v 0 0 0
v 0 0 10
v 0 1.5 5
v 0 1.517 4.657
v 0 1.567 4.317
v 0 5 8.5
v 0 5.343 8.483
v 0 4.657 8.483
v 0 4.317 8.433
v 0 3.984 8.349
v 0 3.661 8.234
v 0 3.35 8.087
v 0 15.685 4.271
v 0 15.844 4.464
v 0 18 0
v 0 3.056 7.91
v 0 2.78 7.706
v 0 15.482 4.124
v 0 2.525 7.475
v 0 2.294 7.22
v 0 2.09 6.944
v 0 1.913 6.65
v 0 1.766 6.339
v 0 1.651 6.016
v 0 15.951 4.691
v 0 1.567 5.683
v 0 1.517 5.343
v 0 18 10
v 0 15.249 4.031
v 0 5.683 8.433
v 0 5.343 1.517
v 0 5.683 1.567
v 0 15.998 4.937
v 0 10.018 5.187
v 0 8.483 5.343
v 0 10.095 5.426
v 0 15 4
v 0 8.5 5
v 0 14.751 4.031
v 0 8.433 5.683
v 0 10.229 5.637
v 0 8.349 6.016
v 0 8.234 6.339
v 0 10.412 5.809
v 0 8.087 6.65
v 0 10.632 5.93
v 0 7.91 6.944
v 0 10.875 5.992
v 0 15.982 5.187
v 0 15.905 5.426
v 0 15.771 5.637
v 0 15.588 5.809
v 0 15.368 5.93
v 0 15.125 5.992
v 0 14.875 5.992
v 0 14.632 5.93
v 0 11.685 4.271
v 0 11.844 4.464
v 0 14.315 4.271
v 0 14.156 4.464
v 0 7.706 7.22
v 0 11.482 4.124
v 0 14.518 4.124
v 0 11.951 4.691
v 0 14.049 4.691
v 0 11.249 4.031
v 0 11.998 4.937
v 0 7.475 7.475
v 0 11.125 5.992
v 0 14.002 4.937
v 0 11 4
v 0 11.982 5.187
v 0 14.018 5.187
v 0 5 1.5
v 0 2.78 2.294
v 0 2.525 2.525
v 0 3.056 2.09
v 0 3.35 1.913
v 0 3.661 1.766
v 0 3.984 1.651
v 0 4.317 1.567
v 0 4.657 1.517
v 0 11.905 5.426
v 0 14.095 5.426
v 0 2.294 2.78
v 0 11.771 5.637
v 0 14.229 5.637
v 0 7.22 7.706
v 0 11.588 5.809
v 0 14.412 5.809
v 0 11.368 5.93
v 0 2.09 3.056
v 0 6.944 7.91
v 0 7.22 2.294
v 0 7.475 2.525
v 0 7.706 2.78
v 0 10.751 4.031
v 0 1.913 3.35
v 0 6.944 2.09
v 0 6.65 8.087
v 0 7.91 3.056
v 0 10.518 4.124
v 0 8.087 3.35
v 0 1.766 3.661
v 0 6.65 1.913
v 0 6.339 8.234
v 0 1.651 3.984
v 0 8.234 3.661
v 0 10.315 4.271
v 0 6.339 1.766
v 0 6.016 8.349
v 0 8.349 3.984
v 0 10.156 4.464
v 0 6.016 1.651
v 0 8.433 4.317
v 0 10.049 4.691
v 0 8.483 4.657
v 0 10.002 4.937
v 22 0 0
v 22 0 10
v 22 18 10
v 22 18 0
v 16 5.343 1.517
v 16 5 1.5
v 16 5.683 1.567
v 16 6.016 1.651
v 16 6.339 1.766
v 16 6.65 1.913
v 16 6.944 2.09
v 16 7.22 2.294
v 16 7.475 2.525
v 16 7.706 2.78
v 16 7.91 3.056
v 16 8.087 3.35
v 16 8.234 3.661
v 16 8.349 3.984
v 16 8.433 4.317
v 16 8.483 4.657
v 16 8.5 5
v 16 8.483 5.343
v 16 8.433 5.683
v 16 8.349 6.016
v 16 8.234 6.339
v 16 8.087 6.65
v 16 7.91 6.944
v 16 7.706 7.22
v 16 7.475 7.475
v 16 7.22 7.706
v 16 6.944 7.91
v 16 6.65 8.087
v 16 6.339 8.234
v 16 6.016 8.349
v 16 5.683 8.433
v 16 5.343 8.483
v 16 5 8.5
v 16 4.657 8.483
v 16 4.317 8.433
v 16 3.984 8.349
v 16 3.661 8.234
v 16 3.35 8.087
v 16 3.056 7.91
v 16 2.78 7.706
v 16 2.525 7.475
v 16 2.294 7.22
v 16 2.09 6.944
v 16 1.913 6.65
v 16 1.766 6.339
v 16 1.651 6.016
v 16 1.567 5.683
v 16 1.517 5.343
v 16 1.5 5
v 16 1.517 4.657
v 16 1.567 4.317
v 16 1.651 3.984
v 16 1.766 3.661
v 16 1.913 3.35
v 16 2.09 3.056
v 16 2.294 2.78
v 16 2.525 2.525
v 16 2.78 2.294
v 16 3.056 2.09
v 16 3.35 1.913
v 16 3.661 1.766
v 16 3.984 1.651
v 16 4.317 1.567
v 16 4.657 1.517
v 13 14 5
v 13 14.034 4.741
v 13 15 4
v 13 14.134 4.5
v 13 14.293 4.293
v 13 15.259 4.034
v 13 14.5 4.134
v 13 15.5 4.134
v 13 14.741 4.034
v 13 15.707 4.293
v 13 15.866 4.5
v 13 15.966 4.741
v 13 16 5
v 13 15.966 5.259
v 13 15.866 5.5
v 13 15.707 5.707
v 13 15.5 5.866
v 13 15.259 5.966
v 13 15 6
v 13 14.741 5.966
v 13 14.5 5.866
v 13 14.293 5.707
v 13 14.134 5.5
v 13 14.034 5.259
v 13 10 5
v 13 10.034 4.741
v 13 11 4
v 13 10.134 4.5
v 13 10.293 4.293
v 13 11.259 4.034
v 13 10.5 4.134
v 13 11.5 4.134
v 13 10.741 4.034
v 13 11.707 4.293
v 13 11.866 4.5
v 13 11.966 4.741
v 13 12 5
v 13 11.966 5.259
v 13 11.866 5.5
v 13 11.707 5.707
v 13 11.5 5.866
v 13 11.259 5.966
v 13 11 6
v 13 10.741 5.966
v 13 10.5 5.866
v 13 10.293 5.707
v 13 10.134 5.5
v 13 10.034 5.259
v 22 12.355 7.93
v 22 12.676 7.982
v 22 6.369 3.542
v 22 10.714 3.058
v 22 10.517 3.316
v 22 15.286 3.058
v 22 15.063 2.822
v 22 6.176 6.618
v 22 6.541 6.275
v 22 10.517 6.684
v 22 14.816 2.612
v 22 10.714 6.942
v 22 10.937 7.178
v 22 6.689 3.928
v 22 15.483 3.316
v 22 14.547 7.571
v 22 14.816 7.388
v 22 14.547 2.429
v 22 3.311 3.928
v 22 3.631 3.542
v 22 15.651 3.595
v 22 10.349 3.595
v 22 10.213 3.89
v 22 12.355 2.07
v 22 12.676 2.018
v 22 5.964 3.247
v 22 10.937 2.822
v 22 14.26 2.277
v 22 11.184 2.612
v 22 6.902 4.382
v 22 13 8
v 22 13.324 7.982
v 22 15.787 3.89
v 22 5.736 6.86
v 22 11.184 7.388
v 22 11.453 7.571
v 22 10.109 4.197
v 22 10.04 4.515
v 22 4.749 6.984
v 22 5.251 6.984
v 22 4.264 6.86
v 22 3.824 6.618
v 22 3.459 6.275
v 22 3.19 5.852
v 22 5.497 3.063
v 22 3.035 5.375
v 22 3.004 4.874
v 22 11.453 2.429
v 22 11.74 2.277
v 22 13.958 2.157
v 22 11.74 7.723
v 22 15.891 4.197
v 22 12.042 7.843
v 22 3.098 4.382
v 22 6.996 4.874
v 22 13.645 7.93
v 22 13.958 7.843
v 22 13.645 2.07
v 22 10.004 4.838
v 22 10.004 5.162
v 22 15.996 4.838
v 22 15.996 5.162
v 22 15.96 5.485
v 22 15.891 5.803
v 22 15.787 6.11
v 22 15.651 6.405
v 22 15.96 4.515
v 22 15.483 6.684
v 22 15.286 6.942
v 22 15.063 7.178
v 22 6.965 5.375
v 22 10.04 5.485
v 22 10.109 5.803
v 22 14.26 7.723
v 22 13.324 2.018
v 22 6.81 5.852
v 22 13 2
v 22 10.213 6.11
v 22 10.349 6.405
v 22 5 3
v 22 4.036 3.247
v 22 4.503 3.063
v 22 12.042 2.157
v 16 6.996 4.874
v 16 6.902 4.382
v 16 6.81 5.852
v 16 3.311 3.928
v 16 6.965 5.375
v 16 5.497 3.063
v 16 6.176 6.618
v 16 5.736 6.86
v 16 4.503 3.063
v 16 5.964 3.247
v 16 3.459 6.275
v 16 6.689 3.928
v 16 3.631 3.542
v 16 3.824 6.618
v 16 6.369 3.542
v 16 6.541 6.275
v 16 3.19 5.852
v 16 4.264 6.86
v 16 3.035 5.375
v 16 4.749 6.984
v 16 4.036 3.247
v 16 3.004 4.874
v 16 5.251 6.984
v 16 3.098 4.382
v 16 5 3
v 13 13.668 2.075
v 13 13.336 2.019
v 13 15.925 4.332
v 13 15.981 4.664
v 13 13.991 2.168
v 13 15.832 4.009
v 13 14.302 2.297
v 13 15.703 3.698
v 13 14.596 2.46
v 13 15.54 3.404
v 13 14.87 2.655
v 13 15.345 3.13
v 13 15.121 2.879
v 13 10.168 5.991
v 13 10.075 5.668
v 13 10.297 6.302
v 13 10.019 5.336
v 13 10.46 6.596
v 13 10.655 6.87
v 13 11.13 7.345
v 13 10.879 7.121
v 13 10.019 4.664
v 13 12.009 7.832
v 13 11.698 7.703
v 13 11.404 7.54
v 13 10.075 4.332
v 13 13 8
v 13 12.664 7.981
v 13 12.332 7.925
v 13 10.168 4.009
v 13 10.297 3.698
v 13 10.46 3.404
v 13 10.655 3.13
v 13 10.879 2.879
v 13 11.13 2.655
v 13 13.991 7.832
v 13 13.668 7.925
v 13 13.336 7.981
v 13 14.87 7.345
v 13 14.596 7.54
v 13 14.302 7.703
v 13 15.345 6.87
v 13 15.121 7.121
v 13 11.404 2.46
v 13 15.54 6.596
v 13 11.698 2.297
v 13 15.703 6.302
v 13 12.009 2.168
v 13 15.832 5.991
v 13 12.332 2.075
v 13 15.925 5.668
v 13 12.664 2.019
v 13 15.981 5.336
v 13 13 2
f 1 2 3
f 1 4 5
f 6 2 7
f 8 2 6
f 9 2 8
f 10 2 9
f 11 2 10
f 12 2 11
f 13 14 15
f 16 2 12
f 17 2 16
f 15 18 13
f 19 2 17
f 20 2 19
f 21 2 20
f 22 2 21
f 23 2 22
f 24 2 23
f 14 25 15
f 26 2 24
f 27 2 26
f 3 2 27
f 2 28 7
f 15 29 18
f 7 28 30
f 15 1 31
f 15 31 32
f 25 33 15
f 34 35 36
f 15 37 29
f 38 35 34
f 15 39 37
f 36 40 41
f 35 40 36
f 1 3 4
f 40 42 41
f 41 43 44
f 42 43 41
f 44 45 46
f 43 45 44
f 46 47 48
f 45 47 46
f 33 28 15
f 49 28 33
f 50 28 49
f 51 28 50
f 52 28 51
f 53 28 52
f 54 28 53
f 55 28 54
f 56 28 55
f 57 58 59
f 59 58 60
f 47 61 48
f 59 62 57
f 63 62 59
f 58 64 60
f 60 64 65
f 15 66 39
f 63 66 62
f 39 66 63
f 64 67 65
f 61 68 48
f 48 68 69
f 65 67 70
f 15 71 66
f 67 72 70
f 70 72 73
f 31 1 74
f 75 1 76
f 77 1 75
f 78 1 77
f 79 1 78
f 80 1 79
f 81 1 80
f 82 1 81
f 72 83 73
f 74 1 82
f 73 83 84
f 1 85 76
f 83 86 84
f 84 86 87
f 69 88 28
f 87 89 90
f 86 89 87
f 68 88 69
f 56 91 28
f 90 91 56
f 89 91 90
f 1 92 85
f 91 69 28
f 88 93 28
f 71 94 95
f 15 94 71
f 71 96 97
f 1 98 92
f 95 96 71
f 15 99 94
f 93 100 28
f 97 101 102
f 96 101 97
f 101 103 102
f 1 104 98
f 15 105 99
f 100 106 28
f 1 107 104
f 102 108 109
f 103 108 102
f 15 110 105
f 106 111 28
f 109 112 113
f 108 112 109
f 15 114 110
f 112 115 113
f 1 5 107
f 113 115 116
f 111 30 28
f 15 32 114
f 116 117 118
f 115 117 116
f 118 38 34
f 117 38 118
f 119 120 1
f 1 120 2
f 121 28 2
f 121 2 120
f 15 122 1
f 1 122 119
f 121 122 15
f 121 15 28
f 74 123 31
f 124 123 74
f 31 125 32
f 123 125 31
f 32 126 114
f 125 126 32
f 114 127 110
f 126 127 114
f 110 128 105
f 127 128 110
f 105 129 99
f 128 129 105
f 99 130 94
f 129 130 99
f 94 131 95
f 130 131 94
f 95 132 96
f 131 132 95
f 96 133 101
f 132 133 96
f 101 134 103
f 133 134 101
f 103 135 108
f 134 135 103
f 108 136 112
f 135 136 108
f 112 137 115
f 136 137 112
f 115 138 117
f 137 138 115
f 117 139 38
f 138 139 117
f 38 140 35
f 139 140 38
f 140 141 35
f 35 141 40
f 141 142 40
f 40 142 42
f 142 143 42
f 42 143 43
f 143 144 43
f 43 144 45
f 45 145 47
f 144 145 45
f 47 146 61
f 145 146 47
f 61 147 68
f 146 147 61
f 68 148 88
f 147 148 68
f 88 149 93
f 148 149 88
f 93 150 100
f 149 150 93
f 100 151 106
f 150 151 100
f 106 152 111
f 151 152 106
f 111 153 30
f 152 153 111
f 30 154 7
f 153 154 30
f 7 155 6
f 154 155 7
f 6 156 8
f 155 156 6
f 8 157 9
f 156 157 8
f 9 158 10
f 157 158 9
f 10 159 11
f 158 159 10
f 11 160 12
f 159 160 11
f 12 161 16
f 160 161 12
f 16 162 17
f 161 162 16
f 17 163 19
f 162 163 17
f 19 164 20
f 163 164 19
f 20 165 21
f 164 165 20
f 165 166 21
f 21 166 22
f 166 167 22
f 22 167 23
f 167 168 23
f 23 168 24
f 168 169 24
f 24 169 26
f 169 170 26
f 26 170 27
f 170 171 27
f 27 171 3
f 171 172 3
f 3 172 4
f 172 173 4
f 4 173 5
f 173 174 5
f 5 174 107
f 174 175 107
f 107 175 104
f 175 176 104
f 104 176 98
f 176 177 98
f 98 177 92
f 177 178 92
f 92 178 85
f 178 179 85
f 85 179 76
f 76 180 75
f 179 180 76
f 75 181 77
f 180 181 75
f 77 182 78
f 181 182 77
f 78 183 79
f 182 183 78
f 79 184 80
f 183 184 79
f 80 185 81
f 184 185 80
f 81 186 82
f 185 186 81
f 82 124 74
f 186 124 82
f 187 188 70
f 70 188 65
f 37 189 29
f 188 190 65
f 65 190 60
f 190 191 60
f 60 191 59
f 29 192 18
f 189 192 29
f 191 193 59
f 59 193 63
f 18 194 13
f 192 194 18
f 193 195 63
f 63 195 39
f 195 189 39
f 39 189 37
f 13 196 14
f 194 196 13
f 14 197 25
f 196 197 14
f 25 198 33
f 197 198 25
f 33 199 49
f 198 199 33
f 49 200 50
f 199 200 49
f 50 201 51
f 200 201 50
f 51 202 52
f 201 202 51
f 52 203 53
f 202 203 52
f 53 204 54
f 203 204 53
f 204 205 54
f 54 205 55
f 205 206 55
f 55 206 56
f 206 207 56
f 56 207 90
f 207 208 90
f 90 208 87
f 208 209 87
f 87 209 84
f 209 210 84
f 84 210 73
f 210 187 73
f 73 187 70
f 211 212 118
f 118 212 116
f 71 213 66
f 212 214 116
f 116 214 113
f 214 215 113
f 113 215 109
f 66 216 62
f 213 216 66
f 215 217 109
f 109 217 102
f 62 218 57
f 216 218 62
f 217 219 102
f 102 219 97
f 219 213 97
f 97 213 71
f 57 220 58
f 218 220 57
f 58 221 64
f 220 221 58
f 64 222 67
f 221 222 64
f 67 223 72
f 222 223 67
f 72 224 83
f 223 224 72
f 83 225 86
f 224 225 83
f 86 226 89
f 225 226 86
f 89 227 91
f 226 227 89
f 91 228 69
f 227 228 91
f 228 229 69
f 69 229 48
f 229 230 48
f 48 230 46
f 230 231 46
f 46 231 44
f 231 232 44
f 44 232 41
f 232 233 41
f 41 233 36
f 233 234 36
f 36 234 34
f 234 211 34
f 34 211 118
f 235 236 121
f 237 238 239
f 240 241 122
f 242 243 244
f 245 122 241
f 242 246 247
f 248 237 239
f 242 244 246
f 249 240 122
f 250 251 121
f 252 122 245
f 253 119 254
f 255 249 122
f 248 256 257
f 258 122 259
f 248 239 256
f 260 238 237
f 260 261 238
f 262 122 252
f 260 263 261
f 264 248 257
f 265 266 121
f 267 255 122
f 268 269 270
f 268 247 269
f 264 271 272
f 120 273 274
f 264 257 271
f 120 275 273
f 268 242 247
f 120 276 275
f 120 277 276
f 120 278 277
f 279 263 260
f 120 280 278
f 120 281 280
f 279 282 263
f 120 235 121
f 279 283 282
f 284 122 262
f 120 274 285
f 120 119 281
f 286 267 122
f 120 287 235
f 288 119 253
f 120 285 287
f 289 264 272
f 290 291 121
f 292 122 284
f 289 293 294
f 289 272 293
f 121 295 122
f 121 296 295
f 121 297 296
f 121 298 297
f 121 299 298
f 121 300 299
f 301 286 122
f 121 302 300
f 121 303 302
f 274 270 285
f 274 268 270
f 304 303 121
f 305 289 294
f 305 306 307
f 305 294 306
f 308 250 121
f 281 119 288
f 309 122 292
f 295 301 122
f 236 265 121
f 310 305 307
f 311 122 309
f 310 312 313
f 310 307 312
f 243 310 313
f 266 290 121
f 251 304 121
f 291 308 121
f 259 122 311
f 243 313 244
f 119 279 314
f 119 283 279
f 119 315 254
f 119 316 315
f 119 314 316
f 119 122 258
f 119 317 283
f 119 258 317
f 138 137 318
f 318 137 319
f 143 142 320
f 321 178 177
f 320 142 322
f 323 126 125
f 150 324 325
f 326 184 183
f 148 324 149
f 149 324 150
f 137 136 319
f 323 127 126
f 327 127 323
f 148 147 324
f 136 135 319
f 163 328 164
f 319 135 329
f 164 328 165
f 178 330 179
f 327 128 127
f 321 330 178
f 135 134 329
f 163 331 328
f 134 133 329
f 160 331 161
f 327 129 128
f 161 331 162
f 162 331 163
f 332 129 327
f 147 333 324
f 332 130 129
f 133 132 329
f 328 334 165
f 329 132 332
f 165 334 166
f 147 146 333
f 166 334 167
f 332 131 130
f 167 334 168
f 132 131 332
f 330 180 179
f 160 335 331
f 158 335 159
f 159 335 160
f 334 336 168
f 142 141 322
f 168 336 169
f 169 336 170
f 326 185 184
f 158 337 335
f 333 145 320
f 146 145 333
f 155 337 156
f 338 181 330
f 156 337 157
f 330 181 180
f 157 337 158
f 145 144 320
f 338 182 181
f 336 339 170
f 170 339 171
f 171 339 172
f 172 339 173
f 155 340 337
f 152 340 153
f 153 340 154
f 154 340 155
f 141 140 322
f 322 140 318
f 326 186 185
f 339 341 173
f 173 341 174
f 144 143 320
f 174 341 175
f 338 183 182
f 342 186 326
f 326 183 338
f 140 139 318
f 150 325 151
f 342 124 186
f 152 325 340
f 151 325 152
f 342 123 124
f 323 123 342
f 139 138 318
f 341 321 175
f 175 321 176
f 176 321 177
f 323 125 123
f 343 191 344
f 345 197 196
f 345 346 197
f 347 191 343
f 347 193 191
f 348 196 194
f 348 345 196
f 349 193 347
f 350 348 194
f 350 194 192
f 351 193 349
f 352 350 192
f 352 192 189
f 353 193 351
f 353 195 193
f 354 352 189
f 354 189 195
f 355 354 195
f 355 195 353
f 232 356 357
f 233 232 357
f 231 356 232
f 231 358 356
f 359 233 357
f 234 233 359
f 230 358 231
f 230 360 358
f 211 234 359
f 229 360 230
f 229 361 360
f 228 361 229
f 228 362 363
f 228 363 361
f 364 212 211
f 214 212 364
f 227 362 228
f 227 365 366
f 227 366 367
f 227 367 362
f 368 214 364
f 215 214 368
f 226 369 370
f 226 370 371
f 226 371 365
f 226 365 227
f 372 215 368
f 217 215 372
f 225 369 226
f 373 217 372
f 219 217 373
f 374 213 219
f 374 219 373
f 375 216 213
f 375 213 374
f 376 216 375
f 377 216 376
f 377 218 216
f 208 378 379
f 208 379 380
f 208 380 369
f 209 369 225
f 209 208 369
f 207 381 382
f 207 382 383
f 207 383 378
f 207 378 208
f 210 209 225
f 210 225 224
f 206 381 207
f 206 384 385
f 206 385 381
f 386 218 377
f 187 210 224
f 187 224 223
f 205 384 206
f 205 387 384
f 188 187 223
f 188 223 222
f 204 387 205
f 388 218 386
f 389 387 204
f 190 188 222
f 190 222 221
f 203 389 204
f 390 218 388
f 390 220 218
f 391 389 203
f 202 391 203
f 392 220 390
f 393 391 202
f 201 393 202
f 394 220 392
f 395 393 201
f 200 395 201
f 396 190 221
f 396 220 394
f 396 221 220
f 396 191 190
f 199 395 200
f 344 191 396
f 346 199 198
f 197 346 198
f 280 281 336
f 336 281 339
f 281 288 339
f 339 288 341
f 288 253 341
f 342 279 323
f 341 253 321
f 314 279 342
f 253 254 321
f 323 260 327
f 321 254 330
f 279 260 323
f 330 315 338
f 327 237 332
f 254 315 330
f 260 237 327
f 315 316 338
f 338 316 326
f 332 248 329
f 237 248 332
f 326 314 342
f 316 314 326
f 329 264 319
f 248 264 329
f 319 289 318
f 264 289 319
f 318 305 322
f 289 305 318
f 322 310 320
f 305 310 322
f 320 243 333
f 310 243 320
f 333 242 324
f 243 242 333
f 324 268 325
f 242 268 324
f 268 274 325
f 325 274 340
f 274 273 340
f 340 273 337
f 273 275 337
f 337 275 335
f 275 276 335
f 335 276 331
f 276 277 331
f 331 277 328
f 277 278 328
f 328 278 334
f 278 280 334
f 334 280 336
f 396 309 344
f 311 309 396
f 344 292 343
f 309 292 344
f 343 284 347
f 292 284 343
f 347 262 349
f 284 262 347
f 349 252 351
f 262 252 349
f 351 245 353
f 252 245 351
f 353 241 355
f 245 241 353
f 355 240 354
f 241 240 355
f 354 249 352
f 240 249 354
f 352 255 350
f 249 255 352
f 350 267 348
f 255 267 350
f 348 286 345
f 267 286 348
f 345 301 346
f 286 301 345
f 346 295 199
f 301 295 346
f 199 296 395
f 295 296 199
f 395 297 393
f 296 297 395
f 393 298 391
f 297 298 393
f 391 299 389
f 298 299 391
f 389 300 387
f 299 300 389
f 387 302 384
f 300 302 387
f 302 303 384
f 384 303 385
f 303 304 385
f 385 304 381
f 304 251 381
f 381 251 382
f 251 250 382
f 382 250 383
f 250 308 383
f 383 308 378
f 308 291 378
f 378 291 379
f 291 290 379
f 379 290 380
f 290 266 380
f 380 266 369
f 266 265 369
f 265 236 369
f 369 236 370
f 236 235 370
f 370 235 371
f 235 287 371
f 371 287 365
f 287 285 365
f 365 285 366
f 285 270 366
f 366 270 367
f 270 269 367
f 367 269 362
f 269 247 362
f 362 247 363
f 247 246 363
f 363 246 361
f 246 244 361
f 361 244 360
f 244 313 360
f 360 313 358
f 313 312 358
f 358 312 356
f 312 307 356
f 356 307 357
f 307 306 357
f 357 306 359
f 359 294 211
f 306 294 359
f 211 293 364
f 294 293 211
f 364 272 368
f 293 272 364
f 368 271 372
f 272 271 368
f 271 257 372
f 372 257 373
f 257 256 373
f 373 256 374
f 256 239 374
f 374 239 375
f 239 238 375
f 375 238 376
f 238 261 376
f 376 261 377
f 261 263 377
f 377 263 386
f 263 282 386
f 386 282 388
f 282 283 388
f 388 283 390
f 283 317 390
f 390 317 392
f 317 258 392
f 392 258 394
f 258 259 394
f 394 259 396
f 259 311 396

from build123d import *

# Parameters (mm, degrees)
CYLINDER006_R     = 3.5
CYLINDER006_DEPTH = 16
CYLINDER007_R     = 3
CYLINDER007_DEPTH = 9
CYLINDER008_R     = 1
CYLINDER008_DEPTH = 13
CYLINDER009_R     = 1
CYLINDER009_DEPTH = 13
CYLINDER003_R     = 2
CYLINDER003_DEPTH = 6
BOX003_W          = 22
BOX003_H          = 18
BOX003_DEPTH      = 10


with BuildPart() as cylinder006:
    # Cylinder006 → Cylinder006 (new body)
    with BuildSketch(Plane(origin=(0, 5, 5), x_dir=(0, 0, -1), z_dir=(1, 0, 0))):
        Circle(CYLINDER006_R)
    extrude(amount=CYLINDER006_DEPTH)


with BuildPart() as cylinder007:
    # Cylinder007 → Cylinder007 (new body)
    with BuildSketch(Plane(origin=(13, 13, 5), x_dir=(0, 0, -1), z_dir=(1, 0, 0))):
        Circle(CYLINDER007_R)
    extrude(amount=CYLINDER007_DEPTH)


with BuildPart() as cylinder008:
    # Cylinder008 → Cylinder008 (new body)
    with BuildSketch(Plane(origin=(0, 11, 5), x_dir=(0, 0, -1), z_dir=(1, 0, 0))):
        Circle(CYLINDER008_R)
    extrude(amount=CYLINDER008_DEPTH)


with BuildPart() as cylinder009:
    # Cylinder009 → Cylinder009 (new body)
    with BuildSketch(Plane(origin=(0, 15, 5), x_dir=(0, 0, -1), z_dir=(1, 0, 0))):
        Circle(CYLINDER009_R)
    extrude(amount=CYLINDER009_DEPTH)


with BuildPart() as body:
    # Cylinder003 → Cylinder003 (new body)
    with BuildSketch(Plane(origin=(16, 5, 5), x_dir=(0, 0, -1), z_dir=(1, 0, 0))):
        Circle(CYLINDER003_R)
    extrude(amount=CYLINDER003_DEPTH)

    # Fusion: union Cylinder006, Cylinder007, Cylinder008, Cylinder009
    add(cylinder006.part)
    add(cylinder007.part)
    add(cylinder008.part)
    add(cylinder009.part)


with BuildPart() as cut003:
    # Box003 → Box003 (new body)
    with BuildSketch(Plane.XY):
        with Locations((11, 9)):
            Rectangle(BOX003_W, BOX003_H)
    extrude(amount=BOX003_DEPTH)

    # Cut003: cut Body
    add(body.part, mode=Mode.SUBTRACT)


solid = cut003.part
